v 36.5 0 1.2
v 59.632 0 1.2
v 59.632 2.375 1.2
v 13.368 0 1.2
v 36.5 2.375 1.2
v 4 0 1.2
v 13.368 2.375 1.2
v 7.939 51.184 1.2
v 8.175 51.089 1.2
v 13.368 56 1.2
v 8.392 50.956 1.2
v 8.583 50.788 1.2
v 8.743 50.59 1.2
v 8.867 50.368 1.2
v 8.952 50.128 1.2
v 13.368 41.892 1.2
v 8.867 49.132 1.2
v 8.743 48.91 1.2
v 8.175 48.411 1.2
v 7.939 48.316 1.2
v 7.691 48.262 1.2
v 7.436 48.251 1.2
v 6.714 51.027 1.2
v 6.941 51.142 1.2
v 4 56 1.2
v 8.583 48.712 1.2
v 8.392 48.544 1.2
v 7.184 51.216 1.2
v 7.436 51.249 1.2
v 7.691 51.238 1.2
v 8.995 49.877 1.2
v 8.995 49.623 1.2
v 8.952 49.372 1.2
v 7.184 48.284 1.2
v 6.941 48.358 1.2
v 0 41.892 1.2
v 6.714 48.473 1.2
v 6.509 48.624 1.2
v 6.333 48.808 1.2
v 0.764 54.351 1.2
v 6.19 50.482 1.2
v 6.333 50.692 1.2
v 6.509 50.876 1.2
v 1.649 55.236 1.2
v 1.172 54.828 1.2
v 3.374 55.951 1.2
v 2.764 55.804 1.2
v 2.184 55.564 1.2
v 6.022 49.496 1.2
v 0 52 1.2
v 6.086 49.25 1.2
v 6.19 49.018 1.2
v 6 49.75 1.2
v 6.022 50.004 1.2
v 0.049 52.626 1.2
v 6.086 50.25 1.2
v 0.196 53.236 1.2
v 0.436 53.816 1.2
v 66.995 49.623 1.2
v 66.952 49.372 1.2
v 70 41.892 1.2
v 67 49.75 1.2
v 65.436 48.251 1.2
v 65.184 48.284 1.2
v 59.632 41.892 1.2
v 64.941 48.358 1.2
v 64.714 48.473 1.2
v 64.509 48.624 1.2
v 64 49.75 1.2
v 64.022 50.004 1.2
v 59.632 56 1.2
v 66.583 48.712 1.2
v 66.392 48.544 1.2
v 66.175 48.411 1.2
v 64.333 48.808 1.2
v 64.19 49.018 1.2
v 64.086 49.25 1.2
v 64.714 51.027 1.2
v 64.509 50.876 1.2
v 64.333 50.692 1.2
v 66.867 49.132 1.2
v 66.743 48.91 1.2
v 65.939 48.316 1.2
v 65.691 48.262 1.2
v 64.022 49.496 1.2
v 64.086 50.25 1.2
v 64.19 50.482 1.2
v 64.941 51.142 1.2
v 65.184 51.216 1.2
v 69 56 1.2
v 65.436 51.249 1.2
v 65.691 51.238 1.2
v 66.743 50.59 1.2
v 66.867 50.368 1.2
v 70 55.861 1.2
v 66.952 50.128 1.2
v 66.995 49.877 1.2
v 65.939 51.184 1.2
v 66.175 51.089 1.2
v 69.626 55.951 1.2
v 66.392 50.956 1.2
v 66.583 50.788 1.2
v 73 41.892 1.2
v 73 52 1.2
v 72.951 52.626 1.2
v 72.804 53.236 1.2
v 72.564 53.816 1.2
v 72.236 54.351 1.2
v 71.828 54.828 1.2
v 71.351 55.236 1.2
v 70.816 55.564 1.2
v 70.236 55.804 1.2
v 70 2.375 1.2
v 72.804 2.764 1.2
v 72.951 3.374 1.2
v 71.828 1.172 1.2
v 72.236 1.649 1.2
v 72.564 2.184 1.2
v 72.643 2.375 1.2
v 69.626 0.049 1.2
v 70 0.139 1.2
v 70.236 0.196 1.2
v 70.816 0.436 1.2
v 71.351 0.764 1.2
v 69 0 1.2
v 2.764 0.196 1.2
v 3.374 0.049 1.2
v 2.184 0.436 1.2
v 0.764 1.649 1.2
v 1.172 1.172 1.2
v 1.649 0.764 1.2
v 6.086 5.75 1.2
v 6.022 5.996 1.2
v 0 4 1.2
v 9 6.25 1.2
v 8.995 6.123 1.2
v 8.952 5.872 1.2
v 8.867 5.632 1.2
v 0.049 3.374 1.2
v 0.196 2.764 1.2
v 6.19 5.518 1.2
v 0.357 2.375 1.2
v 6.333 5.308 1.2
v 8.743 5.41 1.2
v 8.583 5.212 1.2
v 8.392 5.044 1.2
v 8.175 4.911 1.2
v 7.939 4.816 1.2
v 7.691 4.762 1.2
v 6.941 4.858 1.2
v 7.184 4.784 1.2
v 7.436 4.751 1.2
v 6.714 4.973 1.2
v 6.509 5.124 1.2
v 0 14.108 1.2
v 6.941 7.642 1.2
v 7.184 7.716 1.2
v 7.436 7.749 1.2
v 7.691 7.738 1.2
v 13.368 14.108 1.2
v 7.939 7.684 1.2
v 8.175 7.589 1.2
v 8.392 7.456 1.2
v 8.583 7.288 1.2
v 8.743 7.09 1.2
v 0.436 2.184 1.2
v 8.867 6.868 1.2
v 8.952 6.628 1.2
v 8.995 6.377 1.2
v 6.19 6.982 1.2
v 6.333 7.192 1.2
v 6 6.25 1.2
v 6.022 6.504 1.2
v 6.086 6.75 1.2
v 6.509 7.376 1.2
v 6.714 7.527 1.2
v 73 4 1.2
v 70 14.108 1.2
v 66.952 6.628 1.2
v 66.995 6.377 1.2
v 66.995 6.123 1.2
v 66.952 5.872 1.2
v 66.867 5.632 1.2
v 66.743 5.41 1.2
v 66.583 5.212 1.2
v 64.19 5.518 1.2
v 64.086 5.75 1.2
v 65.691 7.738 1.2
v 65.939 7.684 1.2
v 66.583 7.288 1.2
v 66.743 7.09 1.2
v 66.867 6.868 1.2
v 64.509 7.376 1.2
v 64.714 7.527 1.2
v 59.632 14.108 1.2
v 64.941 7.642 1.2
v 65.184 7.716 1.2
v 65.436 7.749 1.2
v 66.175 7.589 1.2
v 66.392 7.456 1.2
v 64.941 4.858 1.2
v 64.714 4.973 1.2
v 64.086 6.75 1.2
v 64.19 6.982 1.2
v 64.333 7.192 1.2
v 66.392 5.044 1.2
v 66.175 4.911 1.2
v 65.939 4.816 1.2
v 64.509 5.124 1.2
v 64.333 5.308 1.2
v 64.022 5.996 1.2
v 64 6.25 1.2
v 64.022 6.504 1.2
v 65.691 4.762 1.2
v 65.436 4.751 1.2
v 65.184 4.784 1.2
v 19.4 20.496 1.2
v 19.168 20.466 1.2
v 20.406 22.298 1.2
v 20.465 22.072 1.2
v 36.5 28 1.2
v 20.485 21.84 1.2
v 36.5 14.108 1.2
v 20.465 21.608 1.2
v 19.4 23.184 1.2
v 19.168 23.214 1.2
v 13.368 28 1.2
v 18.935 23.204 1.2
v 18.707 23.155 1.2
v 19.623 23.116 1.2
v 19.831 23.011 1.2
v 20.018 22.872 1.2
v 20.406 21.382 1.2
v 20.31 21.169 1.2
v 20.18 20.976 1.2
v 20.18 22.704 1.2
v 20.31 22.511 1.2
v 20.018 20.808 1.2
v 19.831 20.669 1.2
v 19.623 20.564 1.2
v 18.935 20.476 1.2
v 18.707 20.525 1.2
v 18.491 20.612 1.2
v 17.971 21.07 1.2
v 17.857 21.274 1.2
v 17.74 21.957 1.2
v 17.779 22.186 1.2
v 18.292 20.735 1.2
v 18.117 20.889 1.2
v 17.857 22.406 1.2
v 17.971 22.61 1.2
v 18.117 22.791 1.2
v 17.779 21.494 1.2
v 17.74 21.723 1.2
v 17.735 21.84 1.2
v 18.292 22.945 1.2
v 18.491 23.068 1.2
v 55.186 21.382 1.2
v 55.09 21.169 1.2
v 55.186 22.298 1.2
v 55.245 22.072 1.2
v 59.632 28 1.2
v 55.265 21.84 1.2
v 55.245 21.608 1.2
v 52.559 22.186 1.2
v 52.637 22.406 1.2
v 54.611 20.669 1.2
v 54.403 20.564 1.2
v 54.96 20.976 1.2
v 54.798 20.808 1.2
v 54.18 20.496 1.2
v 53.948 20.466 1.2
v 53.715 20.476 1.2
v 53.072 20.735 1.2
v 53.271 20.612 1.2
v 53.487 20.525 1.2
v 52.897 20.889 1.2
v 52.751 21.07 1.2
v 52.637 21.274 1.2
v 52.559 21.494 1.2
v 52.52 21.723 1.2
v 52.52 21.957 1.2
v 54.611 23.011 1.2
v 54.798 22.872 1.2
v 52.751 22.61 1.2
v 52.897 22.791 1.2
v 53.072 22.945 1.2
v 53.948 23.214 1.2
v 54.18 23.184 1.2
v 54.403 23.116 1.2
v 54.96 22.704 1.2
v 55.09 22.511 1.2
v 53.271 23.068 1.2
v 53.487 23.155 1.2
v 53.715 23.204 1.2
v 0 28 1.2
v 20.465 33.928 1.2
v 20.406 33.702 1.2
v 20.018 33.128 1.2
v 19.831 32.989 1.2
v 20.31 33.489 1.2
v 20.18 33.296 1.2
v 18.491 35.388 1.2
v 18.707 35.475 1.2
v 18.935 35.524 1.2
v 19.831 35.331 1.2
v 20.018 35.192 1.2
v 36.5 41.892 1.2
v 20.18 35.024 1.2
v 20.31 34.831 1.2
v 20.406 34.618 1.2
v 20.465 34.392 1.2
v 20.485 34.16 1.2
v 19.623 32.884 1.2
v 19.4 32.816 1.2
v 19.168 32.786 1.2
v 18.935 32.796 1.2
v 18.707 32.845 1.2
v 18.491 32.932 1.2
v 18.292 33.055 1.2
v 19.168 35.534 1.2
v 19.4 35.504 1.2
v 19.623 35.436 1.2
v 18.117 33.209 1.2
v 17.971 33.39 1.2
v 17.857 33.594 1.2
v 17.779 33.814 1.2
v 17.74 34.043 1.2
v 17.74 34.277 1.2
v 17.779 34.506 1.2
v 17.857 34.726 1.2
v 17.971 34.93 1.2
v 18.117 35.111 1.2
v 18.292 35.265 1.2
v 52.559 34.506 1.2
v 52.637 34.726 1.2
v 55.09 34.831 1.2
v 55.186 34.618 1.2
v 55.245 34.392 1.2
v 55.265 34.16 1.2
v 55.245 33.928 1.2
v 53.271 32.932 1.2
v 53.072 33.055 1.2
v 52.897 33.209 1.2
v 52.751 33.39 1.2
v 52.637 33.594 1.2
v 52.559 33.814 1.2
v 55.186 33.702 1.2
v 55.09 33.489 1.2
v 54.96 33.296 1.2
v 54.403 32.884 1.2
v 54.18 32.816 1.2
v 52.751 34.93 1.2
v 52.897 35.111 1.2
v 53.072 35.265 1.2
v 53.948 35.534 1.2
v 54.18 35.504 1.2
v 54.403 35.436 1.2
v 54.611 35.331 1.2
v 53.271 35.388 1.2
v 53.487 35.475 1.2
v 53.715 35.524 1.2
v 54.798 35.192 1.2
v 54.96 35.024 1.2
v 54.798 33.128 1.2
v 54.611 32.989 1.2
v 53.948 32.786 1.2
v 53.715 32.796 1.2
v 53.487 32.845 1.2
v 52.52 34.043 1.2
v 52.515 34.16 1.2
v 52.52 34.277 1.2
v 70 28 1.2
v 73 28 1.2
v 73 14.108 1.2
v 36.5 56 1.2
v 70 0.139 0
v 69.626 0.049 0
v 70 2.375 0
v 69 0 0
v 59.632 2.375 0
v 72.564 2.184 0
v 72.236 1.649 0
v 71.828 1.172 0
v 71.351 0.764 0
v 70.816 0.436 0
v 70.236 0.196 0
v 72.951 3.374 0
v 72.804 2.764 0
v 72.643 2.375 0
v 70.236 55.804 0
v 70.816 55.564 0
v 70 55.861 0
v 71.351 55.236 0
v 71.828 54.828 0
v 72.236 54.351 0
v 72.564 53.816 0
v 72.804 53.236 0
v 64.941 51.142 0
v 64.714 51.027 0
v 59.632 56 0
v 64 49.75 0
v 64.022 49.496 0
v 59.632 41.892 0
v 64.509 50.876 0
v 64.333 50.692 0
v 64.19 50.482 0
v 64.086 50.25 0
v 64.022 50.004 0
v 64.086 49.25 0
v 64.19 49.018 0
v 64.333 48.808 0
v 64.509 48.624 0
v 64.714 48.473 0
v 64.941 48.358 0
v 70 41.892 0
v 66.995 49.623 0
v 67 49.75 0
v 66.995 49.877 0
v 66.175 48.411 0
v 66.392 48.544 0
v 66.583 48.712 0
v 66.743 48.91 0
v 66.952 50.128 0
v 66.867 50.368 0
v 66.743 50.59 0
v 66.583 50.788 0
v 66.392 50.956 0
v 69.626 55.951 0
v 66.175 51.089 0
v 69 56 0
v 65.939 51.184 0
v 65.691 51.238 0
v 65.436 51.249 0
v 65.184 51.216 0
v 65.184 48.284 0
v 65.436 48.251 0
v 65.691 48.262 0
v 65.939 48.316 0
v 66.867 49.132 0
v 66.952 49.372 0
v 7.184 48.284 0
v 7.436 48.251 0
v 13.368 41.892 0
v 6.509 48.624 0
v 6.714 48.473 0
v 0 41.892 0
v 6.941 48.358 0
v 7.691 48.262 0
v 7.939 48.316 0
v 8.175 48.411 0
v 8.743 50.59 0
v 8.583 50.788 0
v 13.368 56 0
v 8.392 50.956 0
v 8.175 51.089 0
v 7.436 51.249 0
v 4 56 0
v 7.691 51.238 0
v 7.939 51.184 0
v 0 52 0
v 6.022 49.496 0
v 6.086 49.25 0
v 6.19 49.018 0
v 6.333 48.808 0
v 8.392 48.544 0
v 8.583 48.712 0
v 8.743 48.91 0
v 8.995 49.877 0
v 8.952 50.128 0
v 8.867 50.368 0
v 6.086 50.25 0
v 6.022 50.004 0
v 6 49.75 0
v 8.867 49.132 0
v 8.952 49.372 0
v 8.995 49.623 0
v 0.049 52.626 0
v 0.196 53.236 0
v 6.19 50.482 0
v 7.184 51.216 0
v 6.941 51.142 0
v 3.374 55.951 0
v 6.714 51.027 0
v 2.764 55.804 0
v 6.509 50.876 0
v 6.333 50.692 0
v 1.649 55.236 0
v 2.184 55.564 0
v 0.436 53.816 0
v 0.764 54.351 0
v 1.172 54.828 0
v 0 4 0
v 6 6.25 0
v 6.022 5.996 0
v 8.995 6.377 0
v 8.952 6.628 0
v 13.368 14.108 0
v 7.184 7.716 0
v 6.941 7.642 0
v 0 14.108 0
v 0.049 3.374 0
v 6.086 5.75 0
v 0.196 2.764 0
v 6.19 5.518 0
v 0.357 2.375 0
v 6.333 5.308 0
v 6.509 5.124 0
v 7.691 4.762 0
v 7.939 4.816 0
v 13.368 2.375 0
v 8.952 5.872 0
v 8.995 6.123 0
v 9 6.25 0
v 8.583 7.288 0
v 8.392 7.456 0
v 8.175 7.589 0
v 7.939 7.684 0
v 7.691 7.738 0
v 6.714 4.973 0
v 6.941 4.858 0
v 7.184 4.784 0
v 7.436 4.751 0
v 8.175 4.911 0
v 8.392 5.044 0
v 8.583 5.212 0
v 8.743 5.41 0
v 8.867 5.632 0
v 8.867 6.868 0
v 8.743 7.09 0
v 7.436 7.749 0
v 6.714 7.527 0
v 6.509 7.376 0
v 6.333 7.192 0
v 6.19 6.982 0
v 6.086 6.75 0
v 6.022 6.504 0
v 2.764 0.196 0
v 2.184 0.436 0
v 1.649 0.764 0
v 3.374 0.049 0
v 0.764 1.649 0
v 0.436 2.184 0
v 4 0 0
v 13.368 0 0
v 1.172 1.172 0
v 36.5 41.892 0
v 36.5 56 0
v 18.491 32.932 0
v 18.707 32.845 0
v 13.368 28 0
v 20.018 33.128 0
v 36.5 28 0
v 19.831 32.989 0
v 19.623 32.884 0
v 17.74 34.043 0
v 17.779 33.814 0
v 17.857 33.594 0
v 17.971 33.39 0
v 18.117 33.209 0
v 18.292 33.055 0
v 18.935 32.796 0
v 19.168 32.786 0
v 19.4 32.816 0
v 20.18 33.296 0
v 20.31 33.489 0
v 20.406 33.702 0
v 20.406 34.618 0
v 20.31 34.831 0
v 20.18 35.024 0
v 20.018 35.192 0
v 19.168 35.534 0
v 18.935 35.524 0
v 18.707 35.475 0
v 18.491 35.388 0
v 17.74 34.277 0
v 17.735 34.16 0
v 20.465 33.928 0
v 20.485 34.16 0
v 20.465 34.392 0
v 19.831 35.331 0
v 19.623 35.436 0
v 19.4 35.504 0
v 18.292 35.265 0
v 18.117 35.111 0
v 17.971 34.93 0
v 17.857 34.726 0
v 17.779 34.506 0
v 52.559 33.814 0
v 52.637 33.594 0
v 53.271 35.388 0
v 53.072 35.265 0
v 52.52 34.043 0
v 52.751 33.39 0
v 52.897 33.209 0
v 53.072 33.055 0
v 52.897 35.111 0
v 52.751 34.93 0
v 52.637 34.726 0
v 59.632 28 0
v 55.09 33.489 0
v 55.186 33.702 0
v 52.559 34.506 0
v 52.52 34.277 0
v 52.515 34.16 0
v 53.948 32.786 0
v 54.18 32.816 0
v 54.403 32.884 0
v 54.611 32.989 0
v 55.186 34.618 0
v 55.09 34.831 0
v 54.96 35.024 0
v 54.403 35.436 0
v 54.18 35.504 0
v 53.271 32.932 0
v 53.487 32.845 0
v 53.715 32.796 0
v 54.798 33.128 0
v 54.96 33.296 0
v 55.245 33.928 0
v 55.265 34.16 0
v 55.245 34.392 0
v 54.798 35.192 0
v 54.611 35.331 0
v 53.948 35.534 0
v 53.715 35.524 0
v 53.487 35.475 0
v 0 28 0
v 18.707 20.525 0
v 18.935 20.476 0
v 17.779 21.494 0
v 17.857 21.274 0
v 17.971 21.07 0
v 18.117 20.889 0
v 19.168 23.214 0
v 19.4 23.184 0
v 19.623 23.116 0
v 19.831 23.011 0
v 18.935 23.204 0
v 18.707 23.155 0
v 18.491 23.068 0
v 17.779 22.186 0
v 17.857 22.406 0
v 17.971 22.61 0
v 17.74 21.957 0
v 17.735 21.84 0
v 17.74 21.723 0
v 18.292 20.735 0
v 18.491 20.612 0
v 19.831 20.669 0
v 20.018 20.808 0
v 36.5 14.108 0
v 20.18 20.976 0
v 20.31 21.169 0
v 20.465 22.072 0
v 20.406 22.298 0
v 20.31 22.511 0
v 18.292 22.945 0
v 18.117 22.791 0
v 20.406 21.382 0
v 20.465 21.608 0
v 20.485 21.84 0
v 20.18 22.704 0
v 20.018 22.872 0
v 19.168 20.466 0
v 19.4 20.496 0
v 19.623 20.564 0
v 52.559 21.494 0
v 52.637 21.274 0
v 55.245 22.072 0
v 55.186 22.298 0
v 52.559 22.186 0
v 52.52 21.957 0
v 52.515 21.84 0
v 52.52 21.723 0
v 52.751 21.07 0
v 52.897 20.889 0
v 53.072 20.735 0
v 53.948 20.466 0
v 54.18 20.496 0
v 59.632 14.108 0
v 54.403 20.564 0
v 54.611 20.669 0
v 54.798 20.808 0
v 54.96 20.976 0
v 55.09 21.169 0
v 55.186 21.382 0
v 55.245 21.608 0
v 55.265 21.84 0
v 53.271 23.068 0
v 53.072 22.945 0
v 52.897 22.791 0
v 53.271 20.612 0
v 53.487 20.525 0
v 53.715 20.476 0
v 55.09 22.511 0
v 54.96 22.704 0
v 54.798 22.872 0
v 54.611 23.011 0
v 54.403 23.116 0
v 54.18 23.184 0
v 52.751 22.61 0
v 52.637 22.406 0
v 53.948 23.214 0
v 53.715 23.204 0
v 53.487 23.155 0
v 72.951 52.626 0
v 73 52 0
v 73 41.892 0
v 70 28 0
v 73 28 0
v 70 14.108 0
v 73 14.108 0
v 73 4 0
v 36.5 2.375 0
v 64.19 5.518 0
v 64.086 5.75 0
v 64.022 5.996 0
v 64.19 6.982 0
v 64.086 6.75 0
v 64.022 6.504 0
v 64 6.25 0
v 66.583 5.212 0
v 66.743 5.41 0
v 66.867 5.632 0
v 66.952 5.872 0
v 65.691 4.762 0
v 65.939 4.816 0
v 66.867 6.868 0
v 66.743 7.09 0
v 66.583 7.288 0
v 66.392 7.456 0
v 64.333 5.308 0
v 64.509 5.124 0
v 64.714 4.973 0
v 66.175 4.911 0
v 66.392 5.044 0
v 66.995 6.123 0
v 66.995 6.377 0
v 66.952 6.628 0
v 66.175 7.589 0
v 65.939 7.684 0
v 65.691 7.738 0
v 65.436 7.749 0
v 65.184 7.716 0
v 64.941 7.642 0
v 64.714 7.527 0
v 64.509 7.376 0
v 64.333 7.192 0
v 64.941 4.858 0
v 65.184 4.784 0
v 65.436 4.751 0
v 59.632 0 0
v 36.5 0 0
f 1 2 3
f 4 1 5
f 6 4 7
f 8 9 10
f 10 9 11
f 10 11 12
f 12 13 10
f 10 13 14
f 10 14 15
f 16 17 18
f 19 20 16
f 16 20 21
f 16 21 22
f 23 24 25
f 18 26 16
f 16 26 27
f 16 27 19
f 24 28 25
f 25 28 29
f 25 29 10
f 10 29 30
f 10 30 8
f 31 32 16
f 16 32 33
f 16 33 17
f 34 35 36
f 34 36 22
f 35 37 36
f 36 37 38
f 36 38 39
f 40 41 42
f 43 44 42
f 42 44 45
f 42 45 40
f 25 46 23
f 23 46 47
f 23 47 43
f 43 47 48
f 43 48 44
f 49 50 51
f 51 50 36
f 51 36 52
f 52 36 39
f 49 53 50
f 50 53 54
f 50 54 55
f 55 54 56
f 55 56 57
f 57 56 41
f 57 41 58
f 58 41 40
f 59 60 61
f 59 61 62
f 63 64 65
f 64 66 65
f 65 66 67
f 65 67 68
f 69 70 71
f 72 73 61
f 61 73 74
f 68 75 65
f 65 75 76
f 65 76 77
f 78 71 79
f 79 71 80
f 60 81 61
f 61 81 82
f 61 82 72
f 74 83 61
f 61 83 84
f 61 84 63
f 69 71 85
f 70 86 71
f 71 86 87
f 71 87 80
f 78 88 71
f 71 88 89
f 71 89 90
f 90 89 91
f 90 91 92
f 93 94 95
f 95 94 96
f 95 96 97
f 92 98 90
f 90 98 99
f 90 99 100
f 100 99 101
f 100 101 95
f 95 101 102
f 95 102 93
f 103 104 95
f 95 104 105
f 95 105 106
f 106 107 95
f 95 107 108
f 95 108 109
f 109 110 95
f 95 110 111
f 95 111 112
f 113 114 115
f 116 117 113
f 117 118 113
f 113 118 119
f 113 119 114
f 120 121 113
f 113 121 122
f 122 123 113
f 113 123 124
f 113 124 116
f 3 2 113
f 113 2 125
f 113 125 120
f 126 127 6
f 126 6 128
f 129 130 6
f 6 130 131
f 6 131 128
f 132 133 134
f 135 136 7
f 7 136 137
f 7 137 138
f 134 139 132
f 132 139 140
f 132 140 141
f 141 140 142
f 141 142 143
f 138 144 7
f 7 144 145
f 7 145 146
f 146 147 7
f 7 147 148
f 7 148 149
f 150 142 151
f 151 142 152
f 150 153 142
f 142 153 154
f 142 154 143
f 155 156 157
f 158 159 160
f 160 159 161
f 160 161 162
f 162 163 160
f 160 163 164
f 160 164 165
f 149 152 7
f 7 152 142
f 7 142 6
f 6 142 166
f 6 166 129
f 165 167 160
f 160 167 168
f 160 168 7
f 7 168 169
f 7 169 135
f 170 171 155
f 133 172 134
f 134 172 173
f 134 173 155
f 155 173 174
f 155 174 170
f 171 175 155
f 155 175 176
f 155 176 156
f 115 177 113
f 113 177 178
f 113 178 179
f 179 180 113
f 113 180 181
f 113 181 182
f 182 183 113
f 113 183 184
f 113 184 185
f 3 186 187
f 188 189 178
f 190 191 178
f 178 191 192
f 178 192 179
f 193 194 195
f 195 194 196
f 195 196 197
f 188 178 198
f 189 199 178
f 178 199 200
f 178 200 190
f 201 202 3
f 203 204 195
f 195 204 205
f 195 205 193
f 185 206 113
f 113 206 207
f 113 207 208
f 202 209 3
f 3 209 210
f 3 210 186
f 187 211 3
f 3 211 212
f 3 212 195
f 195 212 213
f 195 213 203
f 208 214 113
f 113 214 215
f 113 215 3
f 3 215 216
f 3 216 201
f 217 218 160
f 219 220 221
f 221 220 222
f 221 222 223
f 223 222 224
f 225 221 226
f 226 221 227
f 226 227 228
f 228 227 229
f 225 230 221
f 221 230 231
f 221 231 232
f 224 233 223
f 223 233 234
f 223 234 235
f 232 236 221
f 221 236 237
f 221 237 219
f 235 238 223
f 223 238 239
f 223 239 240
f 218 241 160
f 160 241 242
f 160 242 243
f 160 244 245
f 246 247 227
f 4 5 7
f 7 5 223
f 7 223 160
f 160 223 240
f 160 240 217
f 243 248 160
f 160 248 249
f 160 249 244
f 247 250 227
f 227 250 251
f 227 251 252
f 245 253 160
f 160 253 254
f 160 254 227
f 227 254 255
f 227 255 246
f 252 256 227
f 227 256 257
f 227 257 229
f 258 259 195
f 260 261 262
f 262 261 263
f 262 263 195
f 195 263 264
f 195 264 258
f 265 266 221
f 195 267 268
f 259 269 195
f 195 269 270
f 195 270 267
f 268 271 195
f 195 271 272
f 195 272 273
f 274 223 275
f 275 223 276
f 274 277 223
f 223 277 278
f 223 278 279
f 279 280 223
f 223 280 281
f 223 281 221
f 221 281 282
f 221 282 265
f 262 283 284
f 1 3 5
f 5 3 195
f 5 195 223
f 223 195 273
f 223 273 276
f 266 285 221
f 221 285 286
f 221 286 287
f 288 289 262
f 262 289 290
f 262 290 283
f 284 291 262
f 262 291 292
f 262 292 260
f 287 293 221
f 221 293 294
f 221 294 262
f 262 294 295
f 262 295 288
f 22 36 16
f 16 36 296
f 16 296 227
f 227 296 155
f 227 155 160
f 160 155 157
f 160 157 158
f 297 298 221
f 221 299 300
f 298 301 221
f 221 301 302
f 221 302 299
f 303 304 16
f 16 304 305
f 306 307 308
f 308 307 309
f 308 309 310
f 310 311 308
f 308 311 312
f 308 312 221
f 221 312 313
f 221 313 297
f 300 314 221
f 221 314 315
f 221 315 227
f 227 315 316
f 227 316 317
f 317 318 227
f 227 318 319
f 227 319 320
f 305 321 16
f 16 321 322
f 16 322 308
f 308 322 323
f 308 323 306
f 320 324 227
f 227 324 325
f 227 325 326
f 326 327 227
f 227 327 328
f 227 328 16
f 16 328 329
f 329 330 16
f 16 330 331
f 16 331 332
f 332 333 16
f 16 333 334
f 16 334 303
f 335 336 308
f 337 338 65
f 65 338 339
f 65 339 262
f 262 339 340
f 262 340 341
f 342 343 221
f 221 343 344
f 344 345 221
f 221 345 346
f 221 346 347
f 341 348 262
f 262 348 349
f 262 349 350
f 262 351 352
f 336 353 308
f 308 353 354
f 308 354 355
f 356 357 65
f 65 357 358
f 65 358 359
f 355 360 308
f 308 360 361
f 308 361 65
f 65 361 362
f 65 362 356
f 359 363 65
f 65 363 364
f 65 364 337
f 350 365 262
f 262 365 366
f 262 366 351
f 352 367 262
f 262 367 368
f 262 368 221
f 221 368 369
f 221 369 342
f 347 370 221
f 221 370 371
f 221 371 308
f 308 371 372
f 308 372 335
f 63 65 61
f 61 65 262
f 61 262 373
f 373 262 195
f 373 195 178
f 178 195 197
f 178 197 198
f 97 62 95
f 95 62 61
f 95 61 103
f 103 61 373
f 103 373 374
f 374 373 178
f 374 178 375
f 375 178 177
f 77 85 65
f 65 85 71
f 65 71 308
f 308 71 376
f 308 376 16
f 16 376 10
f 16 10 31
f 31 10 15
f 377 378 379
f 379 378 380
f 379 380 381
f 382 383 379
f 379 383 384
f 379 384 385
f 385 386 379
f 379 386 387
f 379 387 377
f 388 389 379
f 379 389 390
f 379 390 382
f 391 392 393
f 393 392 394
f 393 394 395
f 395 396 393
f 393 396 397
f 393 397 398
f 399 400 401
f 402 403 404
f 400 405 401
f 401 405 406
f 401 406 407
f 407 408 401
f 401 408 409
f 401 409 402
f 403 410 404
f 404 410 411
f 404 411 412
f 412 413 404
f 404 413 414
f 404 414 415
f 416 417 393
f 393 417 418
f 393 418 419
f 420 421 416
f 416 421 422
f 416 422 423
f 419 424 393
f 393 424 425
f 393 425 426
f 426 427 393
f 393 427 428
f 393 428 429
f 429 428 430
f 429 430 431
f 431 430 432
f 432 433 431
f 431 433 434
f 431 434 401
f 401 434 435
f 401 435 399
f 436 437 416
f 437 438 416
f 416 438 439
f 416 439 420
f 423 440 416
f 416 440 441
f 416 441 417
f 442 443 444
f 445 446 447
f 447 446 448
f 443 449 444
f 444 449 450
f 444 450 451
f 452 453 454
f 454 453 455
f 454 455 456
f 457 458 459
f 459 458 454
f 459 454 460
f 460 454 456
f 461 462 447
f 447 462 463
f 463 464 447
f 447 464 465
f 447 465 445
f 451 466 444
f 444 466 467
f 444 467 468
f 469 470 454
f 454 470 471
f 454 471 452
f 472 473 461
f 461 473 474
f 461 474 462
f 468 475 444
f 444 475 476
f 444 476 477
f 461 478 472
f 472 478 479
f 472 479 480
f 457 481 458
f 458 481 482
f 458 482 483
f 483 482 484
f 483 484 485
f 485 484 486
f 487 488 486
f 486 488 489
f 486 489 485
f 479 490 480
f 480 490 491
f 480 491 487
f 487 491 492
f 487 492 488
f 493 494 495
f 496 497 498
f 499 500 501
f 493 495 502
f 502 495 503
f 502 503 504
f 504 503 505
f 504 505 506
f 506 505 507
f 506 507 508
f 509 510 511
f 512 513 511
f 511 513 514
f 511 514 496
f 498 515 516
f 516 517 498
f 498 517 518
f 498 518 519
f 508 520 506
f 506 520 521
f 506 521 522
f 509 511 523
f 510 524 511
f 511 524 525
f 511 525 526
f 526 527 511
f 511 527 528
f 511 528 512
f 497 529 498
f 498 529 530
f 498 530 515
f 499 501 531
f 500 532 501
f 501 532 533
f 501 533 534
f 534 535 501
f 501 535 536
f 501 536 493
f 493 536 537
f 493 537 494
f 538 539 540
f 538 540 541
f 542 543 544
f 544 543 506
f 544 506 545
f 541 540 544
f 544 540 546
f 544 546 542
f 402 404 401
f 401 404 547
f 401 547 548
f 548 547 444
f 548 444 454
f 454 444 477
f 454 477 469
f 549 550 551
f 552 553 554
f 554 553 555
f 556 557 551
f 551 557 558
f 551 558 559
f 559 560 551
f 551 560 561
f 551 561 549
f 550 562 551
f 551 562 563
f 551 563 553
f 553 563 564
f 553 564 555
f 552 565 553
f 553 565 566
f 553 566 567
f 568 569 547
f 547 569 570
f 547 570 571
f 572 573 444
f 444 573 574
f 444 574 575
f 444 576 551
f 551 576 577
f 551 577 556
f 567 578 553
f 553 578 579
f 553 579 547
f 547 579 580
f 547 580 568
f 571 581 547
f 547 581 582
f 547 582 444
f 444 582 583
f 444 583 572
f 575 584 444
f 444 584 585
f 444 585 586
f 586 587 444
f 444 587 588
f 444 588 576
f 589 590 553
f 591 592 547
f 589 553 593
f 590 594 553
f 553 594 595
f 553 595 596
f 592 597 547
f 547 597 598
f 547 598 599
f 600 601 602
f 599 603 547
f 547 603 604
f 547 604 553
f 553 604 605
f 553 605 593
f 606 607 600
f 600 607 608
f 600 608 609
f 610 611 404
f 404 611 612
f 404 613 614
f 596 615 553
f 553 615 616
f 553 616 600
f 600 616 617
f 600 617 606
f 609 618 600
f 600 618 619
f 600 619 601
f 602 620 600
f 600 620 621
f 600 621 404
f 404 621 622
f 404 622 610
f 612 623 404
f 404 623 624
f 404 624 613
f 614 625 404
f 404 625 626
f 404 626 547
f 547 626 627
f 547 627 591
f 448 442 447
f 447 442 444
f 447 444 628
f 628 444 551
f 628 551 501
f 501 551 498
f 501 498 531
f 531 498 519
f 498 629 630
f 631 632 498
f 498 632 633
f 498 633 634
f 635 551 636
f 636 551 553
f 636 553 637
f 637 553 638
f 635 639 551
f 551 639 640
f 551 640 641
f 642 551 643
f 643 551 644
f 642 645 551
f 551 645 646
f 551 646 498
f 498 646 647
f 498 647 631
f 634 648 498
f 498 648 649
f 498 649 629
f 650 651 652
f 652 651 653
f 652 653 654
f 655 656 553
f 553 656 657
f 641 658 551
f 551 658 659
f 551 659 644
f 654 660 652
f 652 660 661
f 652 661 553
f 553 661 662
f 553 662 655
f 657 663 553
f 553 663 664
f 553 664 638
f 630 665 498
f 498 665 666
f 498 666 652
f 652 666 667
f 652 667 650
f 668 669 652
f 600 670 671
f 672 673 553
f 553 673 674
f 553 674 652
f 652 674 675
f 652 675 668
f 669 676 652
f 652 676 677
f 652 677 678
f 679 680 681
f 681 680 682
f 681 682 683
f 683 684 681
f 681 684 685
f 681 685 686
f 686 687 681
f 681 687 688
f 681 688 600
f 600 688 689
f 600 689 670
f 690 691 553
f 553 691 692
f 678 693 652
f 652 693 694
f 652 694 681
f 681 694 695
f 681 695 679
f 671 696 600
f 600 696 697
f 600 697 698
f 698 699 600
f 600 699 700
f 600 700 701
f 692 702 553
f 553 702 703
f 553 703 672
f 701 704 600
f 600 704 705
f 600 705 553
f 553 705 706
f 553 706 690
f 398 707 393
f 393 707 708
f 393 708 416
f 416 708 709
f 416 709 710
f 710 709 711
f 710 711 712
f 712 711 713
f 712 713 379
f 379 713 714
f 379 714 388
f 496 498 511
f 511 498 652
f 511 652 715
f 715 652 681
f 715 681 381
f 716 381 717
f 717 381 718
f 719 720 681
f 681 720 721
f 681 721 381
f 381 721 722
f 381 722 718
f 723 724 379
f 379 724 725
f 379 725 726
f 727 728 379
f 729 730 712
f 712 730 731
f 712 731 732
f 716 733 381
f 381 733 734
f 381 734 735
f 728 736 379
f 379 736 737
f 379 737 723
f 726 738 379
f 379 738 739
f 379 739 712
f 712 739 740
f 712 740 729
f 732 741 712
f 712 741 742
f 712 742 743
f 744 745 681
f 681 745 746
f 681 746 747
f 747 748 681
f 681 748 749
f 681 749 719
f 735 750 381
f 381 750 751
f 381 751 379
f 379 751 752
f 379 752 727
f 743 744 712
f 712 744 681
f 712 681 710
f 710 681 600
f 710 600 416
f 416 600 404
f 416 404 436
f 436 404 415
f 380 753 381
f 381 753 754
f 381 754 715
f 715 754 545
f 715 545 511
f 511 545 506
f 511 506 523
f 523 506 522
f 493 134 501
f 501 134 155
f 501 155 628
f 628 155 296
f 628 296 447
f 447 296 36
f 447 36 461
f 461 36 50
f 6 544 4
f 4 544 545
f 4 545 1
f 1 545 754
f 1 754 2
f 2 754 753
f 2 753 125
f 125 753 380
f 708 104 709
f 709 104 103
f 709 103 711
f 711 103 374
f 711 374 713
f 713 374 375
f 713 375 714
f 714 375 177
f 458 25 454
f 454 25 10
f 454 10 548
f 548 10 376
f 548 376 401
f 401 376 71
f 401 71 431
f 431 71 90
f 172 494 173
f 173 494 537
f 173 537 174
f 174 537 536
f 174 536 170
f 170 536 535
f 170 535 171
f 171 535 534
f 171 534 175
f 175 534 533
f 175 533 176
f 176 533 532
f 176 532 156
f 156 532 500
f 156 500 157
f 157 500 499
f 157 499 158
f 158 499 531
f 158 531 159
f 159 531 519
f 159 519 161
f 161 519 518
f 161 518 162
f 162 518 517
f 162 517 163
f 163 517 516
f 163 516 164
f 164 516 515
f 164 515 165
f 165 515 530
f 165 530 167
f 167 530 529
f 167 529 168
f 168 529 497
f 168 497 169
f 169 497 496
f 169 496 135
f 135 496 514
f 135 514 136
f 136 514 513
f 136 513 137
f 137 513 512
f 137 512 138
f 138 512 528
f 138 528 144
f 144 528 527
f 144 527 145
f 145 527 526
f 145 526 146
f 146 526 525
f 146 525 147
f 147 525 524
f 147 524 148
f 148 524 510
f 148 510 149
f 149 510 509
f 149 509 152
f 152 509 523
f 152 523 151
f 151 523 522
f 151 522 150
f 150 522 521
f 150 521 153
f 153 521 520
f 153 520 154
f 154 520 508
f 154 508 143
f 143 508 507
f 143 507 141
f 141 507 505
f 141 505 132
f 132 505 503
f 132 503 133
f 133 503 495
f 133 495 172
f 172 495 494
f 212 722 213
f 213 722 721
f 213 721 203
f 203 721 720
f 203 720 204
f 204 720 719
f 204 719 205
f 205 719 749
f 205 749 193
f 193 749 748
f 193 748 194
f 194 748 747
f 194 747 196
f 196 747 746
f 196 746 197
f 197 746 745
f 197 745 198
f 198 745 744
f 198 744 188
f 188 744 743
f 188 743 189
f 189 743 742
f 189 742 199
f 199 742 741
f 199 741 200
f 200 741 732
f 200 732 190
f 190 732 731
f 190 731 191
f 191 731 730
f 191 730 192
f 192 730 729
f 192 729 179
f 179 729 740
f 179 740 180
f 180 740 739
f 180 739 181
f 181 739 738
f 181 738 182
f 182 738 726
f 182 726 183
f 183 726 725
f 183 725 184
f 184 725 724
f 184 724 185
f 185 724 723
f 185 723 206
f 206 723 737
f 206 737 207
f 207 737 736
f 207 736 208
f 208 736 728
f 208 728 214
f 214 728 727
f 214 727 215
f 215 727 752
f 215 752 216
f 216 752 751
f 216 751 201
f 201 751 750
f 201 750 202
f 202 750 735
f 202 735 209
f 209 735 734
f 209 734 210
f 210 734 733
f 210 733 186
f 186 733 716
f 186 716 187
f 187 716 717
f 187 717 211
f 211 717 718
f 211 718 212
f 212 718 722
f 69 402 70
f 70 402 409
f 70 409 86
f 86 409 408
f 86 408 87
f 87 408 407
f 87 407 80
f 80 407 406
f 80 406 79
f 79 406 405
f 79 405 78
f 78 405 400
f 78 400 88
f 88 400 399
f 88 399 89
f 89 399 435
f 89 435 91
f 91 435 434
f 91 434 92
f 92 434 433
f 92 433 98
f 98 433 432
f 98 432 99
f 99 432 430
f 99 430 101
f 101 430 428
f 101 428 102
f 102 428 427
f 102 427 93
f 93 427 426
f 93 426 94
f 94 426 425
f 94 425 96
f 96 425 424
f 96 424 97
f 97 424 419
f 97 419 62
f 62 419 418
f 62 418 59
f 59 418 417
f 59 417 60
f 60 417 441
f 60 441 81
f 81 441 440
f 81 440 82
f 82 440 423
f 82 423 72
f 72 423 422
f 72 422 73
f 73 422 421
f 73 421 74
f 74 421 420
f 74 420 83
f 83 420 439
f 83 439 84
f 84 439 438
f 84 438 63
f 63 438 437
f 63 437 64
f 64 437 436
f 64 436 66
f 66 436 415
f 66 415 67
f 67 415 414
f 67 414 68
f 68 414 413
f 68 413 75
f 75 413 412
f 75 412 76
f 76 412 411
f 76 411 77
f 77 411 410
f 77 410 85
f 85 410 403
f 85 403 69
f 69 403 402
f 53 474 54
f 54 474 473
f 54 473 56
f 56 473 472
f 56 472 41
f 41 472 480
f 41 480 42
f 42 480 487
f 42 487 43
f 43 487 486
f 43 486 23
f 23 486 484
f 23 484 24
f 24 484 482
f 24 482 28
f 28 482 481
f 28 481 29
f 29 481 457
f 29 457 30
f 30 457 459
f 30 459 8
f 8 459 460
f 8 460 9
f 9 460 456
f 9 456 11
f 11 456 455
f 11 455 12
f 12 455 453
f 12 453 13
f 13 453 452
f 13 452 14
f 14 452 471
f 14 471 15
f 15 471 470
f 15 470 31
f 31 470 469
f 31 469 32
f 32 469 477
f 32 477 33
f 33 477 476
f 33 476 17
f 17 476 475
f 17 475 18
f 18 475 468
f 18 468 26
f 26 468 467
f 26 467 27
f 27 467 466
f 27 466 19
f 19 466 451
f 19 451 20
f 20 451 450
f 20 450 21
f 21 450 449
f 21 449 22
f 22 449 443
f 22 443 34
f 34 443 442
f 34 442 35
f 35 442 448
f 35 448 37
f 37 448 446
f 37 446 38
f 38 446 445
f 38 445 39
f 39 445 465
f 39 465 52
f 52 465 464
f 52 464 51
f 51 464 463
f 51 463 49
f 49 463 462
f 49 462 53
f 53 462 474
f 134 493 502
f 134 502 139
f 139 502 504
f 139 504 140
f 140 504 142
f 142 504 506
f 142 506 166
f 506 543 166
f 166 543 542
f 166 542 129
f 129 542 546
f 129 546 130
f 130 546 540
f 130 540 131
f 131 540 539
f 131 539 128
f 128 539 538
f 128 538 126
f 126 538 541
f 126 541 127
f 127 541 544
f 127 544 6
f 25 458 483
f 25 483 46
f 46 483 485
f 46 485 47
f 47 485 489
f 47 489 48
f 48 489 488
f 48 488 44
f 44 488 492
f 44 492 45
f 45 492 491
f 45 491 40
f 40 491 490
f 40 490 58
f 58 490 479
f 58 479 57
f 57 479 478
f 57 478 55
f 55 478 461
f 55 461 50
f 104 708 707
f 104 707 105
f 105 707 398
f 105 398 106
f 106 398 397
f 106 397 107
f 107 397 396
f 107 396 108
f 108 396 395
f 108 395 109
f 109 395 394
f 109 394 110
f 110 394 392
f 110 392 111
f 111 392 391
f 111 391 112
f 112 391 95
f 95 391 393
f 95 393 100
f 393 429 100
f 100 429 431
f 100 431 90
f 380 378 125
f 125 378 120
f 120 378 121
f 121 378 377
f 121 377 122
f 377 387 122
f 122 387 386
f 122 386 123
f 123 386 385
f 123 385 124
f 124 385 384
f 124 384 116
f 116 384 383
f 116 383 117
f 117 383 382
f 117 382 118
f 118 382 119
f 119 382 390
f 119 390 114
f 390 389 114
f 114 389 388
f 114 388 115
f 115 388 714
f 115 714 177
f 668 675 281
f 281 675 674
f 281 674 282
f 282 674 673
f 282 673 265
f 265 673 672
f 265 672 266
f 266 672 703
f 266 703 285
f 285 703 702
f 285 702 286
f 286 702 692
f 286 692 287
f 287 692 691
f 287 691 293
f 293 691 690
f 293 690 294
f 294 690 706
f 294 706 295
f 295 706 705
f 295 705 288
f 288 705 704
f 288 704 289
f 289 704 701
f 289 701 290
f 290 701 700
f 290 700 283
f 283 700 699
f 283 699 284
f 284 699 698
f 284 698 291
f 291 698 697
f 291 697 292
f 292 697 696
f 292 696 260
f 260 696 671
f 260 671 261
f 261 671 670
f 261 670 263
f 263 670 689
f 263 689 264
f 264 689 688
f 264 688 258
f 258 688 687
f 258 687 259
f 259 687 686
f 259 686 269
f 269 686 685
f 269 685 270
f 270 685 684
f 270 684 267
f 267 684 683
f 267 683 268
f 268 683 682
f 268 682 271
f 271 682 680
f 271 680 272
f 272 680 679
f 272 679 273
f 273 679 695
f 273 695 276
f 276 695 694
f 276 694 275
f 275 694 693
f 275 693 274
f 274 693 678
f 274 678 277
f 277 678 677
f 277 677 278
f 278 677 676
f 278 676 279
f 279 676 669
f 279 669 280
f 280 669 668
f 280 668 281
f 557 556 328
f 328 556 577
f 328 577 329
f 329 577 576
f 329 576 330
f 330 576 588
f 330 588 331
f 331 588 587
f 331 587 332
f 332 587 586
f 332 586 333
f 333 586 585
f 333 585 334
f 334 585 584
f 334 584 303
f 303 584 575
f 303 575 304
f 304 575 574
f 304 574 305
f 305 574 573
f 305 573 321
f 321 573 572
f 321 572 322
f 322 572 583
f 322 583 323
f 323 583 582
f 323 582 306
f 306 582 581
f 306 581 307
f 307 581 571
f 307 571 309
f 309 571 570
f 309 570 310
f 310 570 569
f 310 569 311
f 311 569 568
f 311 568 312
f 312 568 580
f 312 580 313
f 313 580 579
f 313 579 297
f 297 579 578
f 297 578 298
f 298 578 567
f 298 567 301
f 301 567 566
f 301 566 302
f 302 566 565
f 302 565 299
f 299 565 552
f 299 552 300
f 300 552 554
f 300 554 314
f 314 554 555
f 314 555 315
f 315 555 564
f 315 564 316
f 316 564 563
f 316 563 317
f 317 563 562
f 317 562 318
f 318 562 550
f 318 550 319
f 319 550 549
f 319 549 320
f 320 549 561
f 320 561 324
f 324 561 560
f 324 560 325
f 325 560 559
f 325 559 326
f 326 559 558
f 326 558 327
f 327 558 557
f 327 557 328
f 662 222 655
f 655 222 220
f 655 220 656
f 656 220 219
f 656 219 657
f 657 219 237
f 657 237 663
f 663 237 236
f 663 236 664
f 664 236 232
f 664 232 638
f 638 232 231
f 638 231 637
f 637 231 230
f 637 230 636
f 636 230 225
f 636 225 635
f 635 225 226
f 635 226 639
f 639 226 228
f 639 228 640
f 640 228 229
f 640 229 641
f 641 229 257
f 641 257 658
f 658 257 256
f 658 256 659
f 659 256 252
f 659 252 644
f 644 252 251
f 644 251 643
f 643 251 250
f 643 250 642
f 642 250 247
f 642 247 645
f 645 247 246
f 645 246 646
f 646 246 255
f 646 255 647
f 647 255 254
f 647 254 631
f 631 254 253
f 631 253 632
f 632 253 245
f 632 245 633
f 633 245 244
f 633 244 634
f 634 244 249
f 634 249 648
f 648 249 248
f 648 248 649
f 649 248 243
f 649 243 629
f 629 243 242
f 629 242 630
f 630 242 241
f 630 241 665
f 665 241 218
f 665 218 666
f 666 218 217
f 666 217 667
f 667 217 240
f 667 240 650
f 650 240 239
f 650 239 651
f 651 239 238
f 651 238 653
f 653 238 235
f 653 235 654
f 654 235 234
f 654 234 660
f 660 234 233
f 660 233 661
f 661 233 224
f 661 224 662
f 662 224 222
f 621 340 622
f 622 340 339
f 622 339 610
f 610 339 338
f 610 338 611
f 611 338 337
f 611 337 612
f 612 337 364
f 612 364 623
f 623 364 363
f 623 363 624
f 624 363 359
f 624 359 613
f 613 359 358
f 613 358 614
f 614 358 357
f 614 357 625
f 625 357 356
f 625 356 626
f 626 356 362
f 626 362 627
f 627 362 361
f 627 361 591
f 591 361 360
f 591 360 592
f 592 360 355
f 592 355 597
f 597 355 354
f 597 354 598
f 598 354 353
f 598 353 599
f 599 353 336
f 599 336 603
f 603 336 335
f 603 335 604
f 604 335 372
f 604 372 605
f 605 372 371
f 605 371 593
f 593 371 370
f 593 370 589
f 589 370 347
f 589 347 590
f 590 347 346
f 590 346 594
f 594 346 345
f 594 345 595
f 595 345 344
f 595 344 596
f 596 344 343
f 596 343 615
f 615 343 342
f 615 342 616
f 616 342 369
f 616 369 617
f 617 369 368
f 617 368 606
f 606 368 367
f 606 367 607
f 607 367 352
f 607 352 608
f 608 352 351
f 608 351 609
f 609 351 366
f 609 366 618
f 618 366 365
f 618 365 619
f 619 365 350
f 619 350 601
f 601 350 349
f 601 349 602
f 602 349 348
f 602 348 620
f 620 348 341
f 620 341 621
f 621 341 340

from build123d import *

# Parameters (mm, degrees)
SKETCH1_W           = 73
SKETCH1_H           = 56
SKETCH1_R           = 1.5
BOSS_EXTRUDE1_DEPTH = 1.2
FILLET1_R           = 4
CUT_EXTRUDE1_REACH  = 94.013
SKETCH2_R           = 1.375


with BuildPart() as part:
    # Sketch1 → Boss-Extrude1 (new body)
    with BuildSketch(Plane.XY):
        with Locations((36.5, 28)):
            Rectangle(SKETCH1_W, SKETCH1_H)
        with Locations((7.5, 6.25)):
            Circle(SKETCH1_R, mode=Mode.SUBTRACT)
        with Locations(Location((65.5, 6.25, 0), (0, 0, 180))):
            Circle(SKETCH1_R, mode=Mode.SUBTRACT)
        with Locations((65.5, 49.75)):
            Circle(SKETCH1_R, mode=Mode.SUBTRACT)
        with Locations(Location((7.5, 49.75, 0), (0, 0, 180))):
            Circle(SKETCH1_R, mode=Mode.SUBTRACT)
    extrude(amount=BOSS_EXTRUDE1_DEPTH)

    # Fillet1
    fillet1_edges = [part.edges().sort_by_distance(p)[0] for p in [
        (0, 56, 0.6),
        (73, 56, 0.6),
        (73, 0, 0.6),
        (0, 0, 0.6),
    ]]
    fillet(fillet1_edges, radius=FILLET1_R)

    # Sketch2 → Cut-Extrude1 (cut, up to next)
    with BuildSketch(Plane.XY.offset(1.2), mode=Mode.PRIVATE) as cut_extrude1_sk1:
        with Locations((53.89, 21.84)):
            Circle(SKETCH2_R)
    cut_extrude1_tool1 = extrude(cut_extrude1_sk1.sketch, amount=-CUT_EXTRUDE1_REACH, mode=Mode.PRIVATE) & part.part
    # Sketch2 → Cut-Extrude1 (cut, up to next)
    with BuildSketch(Plane.XY.offset(1.2), mode=Mode.PRIVATE) as cut_extrude1_sk2:
        with Locations(Location((53.89, 34.16, 0), (0, 0, 180))):
            Circle(SKETCH2_R)
    cut_extrude1_tool2 = extrude(cut_extrude1_sk2.sketch, amount=-CUT_EXTRUDE1_REACH, mode=Mode.PRIVATE) & part.part
    # Sketch2 → Cut-Extrude1 (cut, up to next)
    with BuildSketch(Plane.XY.offset(1.2), mode=Mode.PRIVATE) as cut_extrude1_sk3:
        with Locations(Location((19.11, 21.84, 0), (0, 0, 180))):
            Circle(SKETCH2_R)
    cut_extrude1_tool3 = extrude(cut_extrude1_sk3.sketch, amount=-CUT_EXTRUDE1_REACH, mode=Mode.PRIVATE) & part.part
    # Sketch2 → Cut-Extrude1 (cut, up to next)
    with BuildSketch(Plane.XY.offset(1.2), mode=Mode.PRIVATE) as cut_extrude1_sk4:
        with Locations((19.11, 34.16)):
            Circle(SKETCH2_R)
    cut_extrude1_tool4 = extrude(cut_extrude1_sk4.sketch, amount=-CUT_EXTRUDE1_REACH, mode=Mode.PRIVATE) & part.part
    add(cut_extrude1_tool1.solids().sort_by_distance((53.89, 21.84, 1.2))[0], mode=Mode.SUBTRACT)
    add(cut_extrude1_tool2.solids().sort_by_distance((53.89, 34.16, 1.2))[0], mode=Mode.SUBTRACT)
    add(cut_extrude1_tool3.solids().sort_by_distance((19.11, 21.84, 1.2))[0], mode=Mode.SUBTRACT)
    add(cut_extrude1_tool4.solids().sort_by_distance((19.11, 34.16, 1.2))[0], mode=Mode.SUBTRACT)


solid = part.part
